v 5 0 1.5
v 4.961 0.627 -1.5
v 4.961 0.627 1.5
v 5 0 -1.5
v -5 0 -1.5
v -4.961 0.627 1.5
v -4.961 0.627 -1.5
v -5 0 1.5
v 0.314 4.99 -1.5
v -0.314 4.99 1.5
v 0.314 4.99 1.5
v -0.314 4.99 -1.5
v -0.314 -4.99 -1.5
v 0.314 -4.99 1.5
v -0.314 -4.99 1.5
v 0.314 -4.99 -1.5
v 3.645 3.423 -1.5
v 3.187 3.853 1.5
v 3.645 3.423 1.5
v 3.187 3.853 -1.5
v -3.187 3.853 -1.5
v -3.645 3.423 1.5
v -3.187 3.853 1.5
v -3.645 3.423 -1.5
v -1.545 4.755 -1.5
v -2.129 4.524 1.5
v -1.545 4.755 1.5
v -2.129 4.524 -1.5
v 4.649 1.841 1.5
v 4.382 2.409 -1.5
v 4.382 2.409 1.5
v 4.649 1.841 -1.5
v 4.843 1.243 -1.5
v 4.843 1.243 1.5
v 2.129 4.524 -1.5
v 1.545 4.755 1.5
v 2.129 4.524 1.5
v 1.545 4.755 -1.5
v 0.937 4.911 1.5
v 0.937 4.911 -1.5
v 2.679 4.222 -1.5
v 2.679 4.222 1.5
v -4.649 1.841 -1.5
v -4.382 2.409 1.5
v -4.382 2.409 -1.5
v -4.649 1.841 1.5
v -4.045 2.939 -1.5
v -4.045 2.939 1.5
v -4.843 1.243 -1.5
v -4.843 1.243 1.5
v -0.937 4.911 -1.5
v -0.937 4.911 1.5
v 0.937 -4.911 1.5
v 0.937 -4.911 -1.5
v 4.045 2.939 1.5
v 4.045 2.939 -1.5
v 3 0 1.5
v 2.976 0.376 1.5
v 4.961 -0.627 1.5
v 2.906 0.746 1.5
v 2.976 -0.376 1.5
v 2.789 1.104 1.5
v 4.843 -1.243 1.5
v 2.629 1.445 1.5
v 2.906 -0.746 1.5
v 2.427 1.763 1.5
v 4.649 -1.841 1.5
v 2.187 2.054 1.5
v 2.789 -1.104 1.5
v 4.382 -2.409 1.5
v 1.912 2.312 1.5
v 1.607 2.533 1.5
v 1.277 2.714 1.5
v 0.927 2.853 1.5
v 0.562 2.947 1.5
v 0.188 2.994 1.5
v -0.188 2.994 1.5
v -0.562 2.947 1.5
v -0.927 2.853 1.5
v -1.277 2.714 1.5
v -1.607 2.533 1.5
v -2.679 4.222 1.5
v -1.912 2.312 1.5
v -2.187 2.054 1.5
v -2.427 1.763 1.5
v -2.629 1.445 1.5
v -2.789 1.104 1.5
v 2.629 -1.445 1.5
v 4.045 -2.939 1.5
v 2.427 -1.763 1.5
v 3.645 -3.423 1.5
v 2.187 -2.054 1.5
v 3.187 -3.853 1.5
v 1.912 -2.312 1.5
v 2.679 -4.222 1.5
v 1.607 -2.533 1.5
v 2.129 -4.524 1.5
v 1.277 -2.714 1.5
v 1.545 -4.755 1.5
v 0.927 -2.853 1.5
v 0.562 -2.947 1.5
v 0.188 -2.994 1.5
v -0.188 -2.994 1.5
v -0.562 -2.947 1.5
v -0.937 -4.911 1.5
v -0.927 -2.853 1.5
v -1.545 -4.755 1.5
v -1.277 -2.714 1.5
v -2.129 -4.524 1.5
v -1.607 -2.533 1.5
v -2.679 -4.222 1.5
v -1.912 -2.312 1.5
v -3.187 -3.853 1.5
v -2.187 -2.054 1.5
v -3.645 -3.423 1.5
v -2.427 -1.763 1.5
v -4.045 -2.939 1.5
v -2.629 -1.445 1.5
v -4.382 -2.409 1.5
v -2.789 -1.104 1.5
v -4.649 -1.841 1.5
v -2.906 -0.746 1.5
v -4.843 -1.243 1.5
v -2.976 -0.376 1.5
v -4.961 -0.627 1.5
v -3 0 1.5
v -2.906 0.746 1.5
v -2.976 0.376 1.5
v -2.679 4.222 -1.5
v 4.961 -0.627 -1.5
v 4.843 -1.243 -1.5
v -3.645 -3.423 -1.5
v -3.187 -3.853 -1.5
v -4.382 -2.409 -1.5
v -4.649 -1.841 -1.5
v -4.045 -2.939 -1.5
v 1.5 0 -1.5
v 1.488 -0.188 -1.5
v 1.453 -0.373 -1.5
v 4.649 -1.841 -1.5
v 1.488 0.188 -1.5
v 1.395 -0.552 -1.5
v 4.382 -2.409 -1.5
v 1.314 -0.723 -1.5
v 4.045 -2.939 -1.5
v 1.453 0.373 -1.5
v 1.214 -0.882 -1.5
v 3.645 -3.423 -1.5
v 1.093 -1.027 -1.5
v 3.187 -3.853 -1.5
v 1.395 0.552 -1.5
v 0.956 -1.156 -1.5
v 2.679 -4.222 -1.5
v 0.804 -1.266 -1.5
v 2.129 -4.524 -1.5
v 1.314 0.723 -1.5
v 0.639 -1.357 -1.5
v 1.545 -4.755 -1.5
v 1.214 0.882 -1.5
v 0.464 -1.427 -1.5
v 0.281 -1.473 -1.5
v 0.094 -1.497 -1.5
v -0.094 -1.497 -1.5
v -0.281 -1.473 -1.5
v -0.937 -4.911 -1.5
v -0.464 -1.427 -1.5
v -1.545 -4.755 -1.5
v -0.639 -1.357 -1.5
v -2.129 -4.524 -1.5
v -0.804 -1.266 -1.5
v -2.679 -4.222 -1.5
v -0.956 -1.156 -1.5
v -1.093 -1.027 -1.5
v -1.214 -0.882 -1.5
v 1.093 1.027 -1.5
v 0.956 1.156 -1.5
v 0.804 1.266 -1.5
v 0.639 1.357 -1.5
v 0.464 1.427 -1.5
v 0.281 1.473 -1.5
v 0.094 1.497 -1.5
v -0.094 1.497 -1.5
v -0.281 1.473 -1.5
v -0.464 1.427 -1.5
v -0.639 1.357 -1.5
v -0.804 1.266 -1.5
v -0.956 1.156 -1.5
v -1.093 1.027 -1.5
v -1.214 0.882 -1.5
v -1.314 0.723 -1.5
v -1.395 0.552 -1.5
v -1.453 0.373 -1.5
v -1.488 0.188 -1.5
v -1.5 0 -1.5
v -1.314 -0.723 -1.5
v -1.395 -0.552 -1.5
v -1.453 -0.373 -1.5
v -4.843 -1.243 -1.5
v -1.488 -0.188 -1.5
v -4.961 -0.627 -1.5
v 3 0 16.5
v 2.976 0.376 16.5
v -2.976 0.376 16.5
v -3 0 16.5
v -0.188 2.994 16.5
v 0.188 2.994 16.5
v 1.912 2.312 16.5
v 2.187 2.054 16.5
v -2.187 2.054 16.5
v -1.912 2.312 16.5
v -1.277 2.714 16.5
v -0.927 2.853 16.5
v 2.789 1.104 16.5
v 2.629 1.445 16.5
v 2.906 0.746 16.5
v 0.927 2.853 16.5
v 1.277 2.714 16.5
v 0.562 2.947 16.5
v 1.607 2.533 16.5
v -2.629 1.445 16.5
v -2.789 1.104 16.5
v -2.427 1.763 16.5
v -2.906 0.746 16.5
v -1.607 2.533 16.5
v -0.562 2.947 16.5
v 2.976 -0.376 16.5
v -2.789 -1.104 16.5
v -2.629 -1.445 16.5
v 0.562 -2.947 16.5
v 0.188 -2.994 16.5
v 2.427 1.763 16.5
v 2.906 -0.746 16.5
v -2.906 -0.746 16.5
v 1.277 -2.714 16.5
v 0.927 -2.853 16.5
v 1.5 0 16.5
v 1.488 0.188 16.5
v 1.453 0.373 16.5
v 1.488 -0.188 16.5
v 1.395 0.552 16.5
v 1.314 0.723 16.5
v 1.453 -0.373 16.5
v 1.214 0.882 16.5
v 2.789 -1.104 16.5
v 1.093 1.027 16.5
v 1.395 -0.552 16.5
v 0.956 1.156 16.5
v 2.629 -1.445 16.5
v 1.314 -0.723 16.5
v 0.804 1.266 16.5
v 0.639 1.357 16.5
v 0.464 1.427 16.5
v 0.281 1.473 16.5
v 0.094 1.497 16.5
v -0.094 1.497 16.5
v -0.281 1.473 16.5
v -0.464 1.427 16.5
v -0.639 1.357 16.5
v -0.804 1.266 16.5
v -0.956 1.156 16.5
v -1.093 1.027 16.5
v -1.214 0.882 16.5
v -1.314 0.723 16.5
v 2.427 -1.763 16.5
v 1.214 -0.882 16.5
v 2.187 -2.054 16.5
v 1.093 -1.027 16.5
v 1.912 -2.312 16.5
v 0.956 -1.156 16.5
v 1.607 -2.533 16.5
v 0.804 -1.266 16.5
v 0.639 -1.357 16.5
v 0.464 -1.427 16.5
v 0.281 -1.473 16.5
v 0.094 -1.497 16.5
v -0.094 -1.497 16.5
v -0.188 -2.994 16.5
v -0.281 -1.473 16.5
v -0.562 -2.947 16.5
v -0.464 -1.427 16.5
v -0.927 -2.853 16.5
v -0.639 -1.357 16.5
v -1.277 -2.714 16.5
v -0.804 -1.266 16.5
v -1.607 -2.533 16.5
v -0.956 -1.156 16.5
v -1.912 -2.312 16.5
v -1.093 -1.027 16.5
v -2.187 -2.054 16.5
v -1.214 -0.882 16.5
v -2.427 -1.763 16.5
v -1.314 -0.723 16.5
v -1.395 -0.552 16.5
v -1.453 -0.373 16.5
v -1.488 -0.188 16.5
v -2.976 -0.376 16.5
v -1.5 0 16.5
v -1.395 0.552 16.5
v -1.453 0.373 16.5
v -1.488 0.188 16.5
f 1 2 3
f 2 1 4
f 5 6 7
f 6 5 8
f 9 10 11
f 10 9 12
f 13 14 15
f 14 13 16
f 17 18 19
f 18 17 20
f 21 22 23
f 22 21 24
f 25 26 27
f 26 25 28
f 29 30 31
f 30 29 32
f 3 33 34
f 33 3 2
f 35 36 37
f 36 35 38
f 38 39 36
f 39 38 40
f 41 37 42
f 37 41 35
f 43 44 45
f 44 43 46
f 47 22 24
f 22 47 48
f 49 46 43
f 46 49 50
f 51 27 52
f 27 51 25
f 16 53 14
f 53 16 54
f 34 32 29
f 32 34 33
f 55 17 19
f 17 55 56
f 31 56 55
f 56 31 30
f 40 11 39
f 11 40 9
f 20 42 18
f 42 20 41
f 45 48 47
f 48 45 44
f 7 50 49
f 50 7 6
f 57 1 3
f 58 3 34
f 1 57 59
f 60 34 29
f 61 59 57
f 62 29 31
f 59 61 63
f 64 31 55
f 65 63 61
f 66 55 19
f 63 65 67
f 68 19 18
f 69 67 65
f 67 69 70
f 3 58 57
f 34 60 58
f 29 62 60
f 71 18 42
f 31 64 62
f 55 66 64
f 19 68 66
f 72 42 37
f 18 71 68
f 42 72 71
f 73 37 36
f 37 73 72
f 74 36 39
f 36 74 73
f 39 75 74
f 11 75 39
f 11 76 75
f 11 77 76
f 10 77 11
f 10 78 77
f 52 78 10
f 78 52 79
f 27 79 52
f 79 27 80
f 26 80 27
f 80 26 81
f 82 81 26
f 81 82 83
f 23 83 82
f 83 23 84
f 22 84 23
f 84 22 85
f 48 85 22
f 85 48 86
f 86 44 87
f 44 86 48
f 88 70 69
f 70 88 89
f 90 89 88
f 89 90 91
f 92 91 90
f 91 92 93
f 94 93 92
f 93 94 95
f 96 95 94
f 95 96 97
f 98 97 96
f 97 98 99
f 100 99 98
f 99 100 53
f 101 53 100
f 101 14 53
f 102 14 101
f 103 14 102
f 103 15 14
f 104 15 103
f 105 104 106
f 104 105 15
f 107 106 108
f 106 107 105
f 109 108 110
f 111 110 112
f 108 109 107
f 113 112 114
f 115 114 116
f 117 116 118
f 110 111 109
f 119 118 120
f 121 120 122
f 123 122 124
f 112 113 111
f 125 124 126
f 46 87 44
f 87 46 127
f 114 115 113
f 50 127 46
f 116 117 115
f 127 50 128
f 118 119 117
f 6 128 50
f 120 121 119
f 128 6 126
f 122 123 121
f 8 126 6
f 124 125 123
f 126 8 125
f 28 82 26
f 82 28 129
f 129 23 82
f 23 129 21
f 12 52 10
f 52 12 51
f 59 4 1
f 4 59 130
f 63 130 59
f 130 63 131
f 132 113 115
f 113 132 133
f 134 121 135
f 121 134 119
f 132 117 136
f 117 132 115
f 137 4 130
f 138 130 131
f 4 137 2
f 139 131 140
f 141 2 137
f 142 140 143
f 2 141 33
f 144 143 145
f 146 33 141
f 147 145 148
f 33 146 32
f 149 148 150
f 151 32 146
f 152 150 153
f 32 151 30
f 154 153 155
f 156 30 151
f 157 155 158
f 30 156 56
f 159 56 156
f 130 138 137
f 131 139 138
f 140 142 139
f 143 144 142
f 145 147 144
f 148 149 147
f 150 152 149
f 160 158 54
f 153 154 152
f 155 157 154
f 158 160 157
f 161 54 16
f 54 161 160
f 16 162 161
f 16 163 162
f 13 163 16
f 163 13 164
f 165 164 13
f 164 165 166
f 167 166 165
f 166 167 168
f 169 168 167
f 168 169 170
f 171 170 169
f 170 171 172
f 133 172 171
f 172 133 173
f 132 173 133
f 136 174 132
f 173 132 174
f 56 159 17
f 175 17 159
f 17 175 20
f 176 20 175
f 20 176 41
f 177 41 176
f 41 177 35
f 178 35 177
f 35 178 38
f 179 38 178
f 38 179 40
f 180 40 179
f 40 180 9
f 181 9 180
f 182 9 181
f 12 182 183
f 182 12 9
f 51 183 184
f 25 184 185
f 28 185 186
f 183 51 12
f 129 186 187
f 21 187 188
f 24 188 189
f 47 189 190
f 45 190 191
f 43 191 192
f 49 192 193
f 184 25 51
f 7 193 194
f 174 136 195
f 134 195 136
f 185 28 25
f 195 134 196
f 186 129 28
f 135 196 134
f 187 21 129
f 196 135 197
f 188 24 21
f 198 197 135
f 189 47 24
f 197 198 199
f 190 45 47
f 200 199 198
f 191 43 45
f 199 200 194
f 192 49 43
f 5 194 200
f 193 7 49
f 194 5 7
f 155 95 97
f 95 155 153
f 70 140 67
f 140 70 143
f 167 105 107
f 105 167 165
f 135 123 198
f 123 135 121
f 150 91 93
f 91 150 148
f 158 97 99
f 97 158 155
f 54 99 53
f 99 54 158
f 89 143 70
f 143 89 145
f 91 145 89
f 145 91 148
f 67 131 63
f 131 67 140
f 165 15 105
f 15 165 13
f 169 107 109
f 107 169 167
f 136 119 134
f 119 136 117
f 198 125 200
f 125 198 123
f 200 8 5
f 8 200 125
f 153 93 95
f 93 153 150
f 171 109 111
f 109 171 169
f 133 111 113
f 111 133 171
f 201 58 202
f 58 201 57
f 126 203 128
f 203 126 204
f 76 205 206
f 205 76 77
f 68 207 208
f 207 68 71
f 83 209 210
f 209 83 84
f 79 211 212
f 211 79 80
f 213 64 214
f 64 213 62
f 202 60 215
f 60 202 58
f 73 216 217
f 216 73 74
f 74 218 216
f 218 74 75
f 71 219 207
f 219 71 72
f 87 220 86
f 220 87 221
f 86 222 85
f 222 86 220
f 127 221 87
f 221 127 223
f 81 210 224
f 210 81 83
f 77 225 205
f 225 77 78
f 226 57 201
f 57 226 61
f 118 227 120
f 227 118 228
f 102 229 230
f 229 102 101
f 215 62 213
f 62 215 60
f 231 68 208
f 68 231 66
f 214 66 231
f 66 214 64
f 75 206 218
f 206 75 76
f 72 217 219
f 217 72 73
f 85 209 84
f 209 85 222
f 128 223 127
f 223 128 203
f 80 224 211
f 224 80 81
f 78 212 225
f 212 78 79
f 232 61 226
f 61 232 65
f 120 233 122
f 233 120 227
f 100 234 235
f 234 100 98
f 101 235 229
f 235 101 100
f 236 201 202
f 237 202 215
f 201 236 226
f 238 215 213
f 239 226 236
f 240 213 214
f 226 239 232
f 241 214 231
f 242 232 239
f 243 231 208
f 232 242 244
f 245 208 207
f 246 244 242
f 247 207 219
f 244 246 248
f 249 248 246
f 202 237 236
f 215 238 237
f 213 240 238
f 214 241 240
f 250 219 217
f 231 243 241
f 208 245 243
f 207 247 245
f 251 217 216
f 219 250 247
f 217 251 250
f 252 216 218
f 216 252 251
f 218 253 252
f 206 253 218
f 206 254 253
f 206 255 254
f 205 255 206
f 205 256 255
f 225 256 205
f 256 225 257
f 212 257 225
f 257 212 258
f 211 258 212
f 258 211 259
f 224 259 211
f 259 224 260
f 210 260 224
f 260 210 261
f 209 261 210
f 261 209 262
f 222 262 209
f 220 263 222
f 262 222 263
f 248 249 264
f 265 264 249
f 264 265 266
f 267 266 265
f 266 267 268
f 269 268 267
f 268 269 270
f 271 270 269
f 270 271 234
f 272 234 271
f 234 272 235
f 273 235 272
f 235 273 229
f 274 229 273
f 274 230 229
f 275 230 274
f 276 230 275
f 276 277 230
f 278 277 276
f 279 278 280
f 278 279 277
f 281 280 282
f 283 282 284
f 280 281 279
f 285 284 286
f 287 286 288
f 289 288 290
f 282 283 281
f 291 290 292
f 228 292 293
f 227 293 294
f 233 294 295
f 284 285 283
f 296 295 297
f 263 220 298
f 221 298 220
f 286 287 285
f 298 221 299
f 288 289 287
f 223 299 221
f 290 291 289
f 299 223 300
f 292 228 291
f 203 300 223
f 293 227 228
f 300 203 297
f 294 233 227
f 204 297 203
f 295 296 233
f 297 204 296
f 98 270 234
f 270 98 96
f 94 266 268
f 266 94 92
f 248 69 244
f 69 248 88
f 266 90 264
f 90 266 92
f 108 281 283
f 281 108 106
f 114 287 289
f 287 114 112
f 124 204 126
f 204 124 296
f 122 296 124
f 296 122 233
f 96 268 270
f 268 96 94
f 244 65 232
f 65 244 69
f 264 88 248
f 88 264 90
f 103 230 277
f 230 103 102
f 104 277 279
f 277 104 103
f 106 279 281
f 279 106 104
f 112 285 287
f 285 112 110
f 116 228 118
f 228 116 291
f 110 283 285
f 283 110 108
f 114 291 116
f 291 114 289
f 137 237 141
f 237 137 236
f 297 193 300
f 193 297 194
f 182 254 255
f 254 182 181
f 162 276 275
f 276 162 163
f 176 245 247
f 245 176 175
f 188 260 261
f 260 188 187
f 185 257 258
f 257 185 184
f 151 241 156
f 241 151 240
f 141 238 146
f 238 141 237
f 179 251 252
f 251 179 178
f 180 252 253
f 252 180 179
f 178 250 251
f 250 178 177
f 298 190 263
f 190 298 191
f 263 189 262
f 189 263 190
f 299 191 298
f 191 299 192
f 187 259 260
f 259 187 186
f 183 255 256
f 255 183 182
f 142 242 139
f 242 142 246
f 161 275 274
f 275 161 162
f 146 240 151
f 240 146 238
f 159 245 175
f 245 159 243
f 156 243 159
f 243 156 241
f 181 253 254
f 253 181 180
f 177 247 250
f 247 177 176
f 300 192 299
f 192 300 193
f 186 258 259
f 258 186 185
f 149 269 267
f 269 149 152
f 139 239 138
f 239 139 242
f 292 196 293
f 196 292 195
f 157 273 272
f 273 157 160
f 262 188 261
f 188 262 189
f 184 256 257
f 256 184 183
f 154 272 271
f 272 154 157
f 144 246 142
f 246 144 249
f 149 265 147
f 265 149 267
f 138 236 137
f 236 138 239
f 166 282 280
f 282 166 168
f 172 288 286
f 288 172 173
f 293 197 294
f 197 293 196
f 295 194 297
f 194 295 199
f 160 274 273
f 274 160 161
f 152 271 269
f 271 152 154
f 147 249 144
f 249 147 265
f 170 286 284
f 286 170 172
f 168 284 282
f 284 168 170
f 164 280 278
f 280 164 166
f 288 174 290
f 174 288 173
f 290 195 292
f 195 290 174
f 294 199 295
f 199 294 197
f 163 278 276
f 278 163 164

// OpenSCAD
$fn = 50;


difference() {
	union() {
		translate(v = [0, 0, -1.5000000000]) {
			cylinder(h = 3, r = 5.0000000000);
		}
		translate(v = [0, 0, -1.5000000000]) {
			cylinder(h = 18, r = 3.0000000000);
		}
	}
	union() {
		translate(v = [0, 0, -50.0000000000]) {
			cylinder(h = 100, r = 1.5000000000);
		}
	}
}
